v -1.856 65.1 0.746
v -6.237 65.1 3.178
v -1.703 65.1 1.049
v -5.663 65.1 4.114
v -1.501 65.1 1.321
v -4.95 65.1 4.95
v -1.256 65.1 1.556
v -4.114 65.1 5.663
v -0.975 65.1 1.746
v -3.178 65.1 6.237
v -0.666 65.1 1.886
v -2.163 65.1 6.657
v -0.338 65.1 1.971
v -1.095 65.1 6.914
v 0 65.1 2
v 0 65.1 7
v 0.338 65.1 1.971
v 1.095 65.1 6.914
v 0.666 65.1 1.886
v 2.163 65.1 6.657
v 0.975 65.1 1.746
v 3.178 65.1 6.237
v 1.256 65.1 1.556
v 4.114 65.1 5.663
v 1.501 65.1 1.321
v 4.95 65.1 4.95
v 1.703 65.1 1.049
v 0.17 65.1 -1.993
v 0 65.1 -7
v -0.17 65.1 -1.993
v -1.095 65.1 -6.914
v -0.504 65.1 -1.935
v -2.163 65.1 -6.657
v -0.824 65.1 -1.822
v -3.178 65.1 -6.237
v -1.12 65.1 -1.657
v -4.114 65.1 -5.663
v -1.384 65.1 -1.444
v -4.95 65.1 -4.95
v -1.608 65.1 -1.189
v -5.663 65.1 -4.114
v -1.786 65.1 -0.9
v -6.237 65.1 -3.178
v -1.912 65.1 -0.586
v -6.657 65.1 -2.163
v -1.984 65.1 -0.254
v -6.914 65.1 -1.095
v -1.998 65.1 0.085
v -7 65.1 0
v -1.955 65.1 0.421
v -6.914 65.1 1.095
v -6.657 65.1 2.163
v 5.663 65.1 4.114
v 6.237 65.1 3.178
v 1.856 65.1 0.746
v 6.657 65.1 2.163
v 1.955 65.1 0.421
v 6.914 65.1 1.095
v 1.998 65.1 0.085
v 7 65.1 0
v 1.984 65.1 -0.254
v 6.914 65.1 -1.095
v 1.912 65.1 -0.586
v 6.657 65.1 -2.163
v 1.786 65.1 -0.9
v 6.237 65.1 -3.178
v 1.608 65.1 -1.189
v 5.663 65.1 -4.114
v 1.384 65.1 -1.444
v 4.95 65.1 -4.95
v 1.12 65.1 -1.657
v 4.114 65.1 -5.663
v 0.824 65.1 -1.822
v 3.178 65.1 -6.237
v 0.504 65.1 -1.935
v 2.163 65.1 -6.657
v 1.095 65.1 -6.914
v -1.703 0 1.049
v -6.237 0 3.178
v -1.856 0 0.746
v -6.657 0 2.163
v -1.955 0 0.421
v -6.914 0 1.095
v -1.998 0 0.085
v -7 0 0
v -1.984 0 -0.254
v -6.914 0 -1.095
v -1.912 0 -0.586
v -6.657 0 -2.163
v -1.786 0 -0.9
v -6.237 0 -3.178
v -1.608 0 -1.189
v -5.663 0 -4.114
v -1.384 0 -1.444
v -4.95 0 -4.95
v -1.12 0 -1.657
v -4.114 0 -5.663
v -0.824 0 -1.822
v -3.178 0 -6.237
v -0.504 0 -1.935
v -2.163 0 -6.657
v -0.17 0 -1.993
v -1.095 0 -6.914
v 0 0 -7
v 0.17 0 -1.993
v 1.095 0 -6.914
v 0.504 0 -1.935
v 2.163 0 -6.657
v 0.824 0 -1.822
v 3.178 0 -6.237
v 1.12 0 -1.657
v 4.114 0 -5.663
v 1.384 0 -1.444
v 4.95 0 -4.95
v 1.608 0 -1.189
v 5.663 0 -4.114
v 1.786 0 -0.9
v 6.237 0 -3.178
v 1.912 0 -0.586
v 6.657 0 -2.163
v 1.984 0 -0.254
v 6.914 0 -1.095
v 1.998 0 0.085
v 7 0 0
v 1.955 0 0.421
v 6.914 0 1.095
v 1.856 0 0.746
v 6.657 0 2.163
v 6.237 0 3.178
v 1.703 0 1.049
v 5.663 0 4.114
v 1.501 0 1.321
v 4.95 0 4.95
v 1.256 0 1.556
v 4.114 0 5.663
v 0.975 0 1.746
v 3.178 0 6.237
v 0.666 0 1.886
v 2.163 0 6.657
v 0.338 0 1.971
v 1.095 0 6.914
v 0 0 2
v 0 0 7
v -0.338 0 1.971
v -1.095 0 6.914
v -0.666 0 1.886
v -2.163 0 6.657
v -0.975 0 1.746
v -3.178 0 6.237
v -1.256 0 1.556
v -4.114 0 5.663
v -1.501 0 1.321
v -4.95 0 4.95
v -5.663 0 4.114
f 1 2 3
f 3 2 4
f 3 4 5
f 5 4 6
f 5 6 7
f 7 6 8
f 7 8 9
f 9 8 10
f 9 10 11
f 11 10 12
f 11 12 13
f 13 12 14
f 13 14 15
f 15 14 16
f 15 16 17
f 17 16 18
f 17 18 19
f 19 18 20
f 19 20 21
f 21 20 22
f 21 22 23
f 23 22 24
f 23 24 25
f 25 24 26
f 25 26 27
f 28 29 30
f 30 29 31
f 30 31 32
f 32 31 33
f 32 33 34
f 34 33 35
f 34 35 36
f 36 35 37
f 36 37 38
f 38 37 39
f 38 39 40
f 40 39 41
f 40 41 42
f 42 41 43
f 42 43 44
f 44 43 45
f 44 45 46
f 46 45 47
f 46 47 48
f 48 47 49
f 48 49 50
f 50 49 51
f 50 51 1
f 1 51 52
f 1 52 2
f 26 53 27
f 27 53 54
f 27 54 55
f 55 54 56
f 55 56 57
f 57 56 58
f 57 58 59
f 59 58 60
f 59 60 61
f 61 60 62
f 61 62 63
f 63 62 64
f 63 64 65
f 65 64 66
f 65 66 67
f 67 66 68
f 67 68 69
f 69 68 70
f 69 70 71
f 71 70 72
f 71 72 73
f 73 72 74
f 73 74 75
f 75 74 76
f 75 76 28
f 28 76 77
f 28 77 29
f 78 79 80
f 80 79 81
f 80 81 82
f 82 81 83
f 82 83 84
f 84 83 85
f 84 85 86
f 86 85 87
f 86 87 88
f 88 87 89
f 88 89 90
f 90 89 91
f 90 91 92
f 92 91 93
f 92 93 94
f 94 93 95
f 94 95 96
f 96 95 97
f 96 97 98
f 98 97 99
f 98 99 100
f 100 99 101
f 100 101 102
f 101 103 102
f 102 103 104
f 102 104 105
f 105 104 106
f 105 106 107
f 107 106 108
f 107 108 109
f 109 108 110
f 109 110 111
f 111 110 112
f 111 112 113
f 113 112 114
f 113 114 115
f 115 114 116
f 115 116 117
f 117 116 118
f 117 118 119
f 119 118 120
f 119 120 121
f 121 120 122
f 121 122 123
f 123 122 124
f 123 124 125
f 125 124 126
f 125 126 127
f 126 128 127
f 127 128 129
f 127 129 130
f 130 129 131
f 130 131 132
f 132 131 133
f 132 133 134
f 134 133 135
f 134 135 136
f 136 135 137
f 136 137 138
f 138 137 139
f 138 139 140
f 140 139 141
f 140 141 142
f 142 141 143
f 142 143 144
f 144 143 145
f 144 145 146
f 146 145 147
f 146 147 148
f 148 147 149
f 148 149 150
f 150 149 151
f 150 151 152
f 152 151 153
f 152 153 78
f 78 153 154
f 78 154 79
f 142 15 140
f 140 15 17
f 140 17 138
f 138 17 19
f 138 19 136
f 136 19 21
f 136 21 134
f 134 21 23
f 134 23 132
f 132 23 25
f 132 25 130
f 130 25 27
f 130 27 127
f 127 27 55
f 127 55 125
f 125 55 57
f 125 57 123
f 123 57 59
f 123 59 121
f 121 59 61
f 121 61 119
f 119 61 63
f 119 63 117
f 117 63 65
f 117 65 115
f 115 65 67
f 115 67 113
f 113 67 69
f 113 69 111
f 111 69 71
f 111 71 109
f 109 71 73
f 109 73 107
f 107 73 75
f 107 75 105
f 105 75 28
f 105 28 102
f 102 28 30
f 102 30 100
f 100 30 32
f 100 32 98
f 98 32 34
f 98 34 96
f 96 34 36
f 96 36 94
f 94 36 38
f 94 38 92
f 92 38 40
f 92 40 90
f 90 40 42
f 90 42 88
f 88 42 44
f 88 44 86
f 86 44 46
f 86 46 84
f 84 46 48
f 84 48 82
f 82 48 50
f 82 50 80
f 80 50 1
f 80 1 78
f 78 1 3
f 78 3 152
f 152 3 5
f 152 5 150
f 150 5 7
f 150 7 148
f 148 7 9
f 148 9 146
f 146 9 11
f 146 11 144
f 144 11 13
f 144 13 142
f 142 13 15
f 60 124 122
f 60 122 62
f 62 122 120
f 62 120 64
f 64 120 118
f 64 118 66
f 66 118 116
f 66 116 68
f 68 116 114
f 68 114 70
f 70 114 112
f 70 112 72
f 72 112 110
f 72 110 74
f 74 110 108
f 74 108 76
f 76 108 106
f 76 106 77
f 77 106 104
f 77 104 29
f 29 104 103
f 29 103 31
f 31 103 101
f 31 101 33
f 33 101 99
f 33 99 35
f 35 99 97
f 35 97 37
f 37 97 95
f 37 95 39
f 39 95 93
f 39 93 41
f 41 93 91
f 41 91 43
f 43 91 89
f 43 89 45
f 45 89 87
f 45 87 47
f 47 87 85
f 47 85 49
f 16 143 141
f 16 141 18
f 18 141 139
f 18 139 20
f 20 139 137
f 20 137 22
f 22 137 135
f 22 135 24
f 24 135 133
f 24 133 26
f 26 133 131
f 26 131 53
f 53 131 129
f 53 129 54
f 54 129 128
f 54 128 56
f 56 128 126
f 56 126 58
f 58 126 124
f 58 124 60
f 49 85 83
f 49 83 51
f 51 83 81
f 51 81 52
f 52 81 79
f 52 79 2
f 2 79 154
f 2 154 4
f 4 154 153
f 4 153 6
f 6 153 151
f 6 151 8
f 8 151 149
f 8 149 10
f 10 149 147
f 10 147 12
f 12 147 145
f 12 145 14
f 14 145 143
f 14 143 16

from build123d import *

# Parameters (mm, degrees)
SKETCH1_W           = 14
SKETCH1_H           = 14
BOSS_EXTRUDE2_DEPTH = 65.1
SKETCH2_R           = 2
CUT_EXTRUDE1_DEPTH  = 66.848386465
FILLET1_R           = 7


with BuildPart() as part:
    # Sketch1 → Boss-Extrude2 (new body)
    with BuildSketch(Plane(origin=(0, 0, 0), x_dir=(1, 0, 0), z_dir=(0, 1, 0))):
        Rectangle(SKETCH1_W, SKETCH1_H)
    extrude(amount=BOSS_EXTRUDE2_DEPTH)

    # Sketch2 → Cut-Extrude1 (cut, through all)
    with BuildSketch(Plane(origin=(0, 65.1, 0), x_dir=(1, 0, 0), z_dir=(0, 1, 0))):
        with Locations(Location((0, 0, 0), (0, 0, 270))):
            Circle(SKETCH2_R)
    extrude(amount=-CUT_EXTRUDE1_DEPTH, mode=Mode.SUBTRACT)

    # Fillet1
    fillet1_edges = [part.edges().sort_by_distance(p)[0] for p in [
        (-7, 32.55, 7),
        (-7, 32.55, -7),
        (7, 32.55, -7),
        (7, 32.55, 7),
    ]]
    fillet(fillet1_edges, radius=FILLET1_R - 0.0001)  # a hair under: the kernel refuses the full size


solid = part.part
